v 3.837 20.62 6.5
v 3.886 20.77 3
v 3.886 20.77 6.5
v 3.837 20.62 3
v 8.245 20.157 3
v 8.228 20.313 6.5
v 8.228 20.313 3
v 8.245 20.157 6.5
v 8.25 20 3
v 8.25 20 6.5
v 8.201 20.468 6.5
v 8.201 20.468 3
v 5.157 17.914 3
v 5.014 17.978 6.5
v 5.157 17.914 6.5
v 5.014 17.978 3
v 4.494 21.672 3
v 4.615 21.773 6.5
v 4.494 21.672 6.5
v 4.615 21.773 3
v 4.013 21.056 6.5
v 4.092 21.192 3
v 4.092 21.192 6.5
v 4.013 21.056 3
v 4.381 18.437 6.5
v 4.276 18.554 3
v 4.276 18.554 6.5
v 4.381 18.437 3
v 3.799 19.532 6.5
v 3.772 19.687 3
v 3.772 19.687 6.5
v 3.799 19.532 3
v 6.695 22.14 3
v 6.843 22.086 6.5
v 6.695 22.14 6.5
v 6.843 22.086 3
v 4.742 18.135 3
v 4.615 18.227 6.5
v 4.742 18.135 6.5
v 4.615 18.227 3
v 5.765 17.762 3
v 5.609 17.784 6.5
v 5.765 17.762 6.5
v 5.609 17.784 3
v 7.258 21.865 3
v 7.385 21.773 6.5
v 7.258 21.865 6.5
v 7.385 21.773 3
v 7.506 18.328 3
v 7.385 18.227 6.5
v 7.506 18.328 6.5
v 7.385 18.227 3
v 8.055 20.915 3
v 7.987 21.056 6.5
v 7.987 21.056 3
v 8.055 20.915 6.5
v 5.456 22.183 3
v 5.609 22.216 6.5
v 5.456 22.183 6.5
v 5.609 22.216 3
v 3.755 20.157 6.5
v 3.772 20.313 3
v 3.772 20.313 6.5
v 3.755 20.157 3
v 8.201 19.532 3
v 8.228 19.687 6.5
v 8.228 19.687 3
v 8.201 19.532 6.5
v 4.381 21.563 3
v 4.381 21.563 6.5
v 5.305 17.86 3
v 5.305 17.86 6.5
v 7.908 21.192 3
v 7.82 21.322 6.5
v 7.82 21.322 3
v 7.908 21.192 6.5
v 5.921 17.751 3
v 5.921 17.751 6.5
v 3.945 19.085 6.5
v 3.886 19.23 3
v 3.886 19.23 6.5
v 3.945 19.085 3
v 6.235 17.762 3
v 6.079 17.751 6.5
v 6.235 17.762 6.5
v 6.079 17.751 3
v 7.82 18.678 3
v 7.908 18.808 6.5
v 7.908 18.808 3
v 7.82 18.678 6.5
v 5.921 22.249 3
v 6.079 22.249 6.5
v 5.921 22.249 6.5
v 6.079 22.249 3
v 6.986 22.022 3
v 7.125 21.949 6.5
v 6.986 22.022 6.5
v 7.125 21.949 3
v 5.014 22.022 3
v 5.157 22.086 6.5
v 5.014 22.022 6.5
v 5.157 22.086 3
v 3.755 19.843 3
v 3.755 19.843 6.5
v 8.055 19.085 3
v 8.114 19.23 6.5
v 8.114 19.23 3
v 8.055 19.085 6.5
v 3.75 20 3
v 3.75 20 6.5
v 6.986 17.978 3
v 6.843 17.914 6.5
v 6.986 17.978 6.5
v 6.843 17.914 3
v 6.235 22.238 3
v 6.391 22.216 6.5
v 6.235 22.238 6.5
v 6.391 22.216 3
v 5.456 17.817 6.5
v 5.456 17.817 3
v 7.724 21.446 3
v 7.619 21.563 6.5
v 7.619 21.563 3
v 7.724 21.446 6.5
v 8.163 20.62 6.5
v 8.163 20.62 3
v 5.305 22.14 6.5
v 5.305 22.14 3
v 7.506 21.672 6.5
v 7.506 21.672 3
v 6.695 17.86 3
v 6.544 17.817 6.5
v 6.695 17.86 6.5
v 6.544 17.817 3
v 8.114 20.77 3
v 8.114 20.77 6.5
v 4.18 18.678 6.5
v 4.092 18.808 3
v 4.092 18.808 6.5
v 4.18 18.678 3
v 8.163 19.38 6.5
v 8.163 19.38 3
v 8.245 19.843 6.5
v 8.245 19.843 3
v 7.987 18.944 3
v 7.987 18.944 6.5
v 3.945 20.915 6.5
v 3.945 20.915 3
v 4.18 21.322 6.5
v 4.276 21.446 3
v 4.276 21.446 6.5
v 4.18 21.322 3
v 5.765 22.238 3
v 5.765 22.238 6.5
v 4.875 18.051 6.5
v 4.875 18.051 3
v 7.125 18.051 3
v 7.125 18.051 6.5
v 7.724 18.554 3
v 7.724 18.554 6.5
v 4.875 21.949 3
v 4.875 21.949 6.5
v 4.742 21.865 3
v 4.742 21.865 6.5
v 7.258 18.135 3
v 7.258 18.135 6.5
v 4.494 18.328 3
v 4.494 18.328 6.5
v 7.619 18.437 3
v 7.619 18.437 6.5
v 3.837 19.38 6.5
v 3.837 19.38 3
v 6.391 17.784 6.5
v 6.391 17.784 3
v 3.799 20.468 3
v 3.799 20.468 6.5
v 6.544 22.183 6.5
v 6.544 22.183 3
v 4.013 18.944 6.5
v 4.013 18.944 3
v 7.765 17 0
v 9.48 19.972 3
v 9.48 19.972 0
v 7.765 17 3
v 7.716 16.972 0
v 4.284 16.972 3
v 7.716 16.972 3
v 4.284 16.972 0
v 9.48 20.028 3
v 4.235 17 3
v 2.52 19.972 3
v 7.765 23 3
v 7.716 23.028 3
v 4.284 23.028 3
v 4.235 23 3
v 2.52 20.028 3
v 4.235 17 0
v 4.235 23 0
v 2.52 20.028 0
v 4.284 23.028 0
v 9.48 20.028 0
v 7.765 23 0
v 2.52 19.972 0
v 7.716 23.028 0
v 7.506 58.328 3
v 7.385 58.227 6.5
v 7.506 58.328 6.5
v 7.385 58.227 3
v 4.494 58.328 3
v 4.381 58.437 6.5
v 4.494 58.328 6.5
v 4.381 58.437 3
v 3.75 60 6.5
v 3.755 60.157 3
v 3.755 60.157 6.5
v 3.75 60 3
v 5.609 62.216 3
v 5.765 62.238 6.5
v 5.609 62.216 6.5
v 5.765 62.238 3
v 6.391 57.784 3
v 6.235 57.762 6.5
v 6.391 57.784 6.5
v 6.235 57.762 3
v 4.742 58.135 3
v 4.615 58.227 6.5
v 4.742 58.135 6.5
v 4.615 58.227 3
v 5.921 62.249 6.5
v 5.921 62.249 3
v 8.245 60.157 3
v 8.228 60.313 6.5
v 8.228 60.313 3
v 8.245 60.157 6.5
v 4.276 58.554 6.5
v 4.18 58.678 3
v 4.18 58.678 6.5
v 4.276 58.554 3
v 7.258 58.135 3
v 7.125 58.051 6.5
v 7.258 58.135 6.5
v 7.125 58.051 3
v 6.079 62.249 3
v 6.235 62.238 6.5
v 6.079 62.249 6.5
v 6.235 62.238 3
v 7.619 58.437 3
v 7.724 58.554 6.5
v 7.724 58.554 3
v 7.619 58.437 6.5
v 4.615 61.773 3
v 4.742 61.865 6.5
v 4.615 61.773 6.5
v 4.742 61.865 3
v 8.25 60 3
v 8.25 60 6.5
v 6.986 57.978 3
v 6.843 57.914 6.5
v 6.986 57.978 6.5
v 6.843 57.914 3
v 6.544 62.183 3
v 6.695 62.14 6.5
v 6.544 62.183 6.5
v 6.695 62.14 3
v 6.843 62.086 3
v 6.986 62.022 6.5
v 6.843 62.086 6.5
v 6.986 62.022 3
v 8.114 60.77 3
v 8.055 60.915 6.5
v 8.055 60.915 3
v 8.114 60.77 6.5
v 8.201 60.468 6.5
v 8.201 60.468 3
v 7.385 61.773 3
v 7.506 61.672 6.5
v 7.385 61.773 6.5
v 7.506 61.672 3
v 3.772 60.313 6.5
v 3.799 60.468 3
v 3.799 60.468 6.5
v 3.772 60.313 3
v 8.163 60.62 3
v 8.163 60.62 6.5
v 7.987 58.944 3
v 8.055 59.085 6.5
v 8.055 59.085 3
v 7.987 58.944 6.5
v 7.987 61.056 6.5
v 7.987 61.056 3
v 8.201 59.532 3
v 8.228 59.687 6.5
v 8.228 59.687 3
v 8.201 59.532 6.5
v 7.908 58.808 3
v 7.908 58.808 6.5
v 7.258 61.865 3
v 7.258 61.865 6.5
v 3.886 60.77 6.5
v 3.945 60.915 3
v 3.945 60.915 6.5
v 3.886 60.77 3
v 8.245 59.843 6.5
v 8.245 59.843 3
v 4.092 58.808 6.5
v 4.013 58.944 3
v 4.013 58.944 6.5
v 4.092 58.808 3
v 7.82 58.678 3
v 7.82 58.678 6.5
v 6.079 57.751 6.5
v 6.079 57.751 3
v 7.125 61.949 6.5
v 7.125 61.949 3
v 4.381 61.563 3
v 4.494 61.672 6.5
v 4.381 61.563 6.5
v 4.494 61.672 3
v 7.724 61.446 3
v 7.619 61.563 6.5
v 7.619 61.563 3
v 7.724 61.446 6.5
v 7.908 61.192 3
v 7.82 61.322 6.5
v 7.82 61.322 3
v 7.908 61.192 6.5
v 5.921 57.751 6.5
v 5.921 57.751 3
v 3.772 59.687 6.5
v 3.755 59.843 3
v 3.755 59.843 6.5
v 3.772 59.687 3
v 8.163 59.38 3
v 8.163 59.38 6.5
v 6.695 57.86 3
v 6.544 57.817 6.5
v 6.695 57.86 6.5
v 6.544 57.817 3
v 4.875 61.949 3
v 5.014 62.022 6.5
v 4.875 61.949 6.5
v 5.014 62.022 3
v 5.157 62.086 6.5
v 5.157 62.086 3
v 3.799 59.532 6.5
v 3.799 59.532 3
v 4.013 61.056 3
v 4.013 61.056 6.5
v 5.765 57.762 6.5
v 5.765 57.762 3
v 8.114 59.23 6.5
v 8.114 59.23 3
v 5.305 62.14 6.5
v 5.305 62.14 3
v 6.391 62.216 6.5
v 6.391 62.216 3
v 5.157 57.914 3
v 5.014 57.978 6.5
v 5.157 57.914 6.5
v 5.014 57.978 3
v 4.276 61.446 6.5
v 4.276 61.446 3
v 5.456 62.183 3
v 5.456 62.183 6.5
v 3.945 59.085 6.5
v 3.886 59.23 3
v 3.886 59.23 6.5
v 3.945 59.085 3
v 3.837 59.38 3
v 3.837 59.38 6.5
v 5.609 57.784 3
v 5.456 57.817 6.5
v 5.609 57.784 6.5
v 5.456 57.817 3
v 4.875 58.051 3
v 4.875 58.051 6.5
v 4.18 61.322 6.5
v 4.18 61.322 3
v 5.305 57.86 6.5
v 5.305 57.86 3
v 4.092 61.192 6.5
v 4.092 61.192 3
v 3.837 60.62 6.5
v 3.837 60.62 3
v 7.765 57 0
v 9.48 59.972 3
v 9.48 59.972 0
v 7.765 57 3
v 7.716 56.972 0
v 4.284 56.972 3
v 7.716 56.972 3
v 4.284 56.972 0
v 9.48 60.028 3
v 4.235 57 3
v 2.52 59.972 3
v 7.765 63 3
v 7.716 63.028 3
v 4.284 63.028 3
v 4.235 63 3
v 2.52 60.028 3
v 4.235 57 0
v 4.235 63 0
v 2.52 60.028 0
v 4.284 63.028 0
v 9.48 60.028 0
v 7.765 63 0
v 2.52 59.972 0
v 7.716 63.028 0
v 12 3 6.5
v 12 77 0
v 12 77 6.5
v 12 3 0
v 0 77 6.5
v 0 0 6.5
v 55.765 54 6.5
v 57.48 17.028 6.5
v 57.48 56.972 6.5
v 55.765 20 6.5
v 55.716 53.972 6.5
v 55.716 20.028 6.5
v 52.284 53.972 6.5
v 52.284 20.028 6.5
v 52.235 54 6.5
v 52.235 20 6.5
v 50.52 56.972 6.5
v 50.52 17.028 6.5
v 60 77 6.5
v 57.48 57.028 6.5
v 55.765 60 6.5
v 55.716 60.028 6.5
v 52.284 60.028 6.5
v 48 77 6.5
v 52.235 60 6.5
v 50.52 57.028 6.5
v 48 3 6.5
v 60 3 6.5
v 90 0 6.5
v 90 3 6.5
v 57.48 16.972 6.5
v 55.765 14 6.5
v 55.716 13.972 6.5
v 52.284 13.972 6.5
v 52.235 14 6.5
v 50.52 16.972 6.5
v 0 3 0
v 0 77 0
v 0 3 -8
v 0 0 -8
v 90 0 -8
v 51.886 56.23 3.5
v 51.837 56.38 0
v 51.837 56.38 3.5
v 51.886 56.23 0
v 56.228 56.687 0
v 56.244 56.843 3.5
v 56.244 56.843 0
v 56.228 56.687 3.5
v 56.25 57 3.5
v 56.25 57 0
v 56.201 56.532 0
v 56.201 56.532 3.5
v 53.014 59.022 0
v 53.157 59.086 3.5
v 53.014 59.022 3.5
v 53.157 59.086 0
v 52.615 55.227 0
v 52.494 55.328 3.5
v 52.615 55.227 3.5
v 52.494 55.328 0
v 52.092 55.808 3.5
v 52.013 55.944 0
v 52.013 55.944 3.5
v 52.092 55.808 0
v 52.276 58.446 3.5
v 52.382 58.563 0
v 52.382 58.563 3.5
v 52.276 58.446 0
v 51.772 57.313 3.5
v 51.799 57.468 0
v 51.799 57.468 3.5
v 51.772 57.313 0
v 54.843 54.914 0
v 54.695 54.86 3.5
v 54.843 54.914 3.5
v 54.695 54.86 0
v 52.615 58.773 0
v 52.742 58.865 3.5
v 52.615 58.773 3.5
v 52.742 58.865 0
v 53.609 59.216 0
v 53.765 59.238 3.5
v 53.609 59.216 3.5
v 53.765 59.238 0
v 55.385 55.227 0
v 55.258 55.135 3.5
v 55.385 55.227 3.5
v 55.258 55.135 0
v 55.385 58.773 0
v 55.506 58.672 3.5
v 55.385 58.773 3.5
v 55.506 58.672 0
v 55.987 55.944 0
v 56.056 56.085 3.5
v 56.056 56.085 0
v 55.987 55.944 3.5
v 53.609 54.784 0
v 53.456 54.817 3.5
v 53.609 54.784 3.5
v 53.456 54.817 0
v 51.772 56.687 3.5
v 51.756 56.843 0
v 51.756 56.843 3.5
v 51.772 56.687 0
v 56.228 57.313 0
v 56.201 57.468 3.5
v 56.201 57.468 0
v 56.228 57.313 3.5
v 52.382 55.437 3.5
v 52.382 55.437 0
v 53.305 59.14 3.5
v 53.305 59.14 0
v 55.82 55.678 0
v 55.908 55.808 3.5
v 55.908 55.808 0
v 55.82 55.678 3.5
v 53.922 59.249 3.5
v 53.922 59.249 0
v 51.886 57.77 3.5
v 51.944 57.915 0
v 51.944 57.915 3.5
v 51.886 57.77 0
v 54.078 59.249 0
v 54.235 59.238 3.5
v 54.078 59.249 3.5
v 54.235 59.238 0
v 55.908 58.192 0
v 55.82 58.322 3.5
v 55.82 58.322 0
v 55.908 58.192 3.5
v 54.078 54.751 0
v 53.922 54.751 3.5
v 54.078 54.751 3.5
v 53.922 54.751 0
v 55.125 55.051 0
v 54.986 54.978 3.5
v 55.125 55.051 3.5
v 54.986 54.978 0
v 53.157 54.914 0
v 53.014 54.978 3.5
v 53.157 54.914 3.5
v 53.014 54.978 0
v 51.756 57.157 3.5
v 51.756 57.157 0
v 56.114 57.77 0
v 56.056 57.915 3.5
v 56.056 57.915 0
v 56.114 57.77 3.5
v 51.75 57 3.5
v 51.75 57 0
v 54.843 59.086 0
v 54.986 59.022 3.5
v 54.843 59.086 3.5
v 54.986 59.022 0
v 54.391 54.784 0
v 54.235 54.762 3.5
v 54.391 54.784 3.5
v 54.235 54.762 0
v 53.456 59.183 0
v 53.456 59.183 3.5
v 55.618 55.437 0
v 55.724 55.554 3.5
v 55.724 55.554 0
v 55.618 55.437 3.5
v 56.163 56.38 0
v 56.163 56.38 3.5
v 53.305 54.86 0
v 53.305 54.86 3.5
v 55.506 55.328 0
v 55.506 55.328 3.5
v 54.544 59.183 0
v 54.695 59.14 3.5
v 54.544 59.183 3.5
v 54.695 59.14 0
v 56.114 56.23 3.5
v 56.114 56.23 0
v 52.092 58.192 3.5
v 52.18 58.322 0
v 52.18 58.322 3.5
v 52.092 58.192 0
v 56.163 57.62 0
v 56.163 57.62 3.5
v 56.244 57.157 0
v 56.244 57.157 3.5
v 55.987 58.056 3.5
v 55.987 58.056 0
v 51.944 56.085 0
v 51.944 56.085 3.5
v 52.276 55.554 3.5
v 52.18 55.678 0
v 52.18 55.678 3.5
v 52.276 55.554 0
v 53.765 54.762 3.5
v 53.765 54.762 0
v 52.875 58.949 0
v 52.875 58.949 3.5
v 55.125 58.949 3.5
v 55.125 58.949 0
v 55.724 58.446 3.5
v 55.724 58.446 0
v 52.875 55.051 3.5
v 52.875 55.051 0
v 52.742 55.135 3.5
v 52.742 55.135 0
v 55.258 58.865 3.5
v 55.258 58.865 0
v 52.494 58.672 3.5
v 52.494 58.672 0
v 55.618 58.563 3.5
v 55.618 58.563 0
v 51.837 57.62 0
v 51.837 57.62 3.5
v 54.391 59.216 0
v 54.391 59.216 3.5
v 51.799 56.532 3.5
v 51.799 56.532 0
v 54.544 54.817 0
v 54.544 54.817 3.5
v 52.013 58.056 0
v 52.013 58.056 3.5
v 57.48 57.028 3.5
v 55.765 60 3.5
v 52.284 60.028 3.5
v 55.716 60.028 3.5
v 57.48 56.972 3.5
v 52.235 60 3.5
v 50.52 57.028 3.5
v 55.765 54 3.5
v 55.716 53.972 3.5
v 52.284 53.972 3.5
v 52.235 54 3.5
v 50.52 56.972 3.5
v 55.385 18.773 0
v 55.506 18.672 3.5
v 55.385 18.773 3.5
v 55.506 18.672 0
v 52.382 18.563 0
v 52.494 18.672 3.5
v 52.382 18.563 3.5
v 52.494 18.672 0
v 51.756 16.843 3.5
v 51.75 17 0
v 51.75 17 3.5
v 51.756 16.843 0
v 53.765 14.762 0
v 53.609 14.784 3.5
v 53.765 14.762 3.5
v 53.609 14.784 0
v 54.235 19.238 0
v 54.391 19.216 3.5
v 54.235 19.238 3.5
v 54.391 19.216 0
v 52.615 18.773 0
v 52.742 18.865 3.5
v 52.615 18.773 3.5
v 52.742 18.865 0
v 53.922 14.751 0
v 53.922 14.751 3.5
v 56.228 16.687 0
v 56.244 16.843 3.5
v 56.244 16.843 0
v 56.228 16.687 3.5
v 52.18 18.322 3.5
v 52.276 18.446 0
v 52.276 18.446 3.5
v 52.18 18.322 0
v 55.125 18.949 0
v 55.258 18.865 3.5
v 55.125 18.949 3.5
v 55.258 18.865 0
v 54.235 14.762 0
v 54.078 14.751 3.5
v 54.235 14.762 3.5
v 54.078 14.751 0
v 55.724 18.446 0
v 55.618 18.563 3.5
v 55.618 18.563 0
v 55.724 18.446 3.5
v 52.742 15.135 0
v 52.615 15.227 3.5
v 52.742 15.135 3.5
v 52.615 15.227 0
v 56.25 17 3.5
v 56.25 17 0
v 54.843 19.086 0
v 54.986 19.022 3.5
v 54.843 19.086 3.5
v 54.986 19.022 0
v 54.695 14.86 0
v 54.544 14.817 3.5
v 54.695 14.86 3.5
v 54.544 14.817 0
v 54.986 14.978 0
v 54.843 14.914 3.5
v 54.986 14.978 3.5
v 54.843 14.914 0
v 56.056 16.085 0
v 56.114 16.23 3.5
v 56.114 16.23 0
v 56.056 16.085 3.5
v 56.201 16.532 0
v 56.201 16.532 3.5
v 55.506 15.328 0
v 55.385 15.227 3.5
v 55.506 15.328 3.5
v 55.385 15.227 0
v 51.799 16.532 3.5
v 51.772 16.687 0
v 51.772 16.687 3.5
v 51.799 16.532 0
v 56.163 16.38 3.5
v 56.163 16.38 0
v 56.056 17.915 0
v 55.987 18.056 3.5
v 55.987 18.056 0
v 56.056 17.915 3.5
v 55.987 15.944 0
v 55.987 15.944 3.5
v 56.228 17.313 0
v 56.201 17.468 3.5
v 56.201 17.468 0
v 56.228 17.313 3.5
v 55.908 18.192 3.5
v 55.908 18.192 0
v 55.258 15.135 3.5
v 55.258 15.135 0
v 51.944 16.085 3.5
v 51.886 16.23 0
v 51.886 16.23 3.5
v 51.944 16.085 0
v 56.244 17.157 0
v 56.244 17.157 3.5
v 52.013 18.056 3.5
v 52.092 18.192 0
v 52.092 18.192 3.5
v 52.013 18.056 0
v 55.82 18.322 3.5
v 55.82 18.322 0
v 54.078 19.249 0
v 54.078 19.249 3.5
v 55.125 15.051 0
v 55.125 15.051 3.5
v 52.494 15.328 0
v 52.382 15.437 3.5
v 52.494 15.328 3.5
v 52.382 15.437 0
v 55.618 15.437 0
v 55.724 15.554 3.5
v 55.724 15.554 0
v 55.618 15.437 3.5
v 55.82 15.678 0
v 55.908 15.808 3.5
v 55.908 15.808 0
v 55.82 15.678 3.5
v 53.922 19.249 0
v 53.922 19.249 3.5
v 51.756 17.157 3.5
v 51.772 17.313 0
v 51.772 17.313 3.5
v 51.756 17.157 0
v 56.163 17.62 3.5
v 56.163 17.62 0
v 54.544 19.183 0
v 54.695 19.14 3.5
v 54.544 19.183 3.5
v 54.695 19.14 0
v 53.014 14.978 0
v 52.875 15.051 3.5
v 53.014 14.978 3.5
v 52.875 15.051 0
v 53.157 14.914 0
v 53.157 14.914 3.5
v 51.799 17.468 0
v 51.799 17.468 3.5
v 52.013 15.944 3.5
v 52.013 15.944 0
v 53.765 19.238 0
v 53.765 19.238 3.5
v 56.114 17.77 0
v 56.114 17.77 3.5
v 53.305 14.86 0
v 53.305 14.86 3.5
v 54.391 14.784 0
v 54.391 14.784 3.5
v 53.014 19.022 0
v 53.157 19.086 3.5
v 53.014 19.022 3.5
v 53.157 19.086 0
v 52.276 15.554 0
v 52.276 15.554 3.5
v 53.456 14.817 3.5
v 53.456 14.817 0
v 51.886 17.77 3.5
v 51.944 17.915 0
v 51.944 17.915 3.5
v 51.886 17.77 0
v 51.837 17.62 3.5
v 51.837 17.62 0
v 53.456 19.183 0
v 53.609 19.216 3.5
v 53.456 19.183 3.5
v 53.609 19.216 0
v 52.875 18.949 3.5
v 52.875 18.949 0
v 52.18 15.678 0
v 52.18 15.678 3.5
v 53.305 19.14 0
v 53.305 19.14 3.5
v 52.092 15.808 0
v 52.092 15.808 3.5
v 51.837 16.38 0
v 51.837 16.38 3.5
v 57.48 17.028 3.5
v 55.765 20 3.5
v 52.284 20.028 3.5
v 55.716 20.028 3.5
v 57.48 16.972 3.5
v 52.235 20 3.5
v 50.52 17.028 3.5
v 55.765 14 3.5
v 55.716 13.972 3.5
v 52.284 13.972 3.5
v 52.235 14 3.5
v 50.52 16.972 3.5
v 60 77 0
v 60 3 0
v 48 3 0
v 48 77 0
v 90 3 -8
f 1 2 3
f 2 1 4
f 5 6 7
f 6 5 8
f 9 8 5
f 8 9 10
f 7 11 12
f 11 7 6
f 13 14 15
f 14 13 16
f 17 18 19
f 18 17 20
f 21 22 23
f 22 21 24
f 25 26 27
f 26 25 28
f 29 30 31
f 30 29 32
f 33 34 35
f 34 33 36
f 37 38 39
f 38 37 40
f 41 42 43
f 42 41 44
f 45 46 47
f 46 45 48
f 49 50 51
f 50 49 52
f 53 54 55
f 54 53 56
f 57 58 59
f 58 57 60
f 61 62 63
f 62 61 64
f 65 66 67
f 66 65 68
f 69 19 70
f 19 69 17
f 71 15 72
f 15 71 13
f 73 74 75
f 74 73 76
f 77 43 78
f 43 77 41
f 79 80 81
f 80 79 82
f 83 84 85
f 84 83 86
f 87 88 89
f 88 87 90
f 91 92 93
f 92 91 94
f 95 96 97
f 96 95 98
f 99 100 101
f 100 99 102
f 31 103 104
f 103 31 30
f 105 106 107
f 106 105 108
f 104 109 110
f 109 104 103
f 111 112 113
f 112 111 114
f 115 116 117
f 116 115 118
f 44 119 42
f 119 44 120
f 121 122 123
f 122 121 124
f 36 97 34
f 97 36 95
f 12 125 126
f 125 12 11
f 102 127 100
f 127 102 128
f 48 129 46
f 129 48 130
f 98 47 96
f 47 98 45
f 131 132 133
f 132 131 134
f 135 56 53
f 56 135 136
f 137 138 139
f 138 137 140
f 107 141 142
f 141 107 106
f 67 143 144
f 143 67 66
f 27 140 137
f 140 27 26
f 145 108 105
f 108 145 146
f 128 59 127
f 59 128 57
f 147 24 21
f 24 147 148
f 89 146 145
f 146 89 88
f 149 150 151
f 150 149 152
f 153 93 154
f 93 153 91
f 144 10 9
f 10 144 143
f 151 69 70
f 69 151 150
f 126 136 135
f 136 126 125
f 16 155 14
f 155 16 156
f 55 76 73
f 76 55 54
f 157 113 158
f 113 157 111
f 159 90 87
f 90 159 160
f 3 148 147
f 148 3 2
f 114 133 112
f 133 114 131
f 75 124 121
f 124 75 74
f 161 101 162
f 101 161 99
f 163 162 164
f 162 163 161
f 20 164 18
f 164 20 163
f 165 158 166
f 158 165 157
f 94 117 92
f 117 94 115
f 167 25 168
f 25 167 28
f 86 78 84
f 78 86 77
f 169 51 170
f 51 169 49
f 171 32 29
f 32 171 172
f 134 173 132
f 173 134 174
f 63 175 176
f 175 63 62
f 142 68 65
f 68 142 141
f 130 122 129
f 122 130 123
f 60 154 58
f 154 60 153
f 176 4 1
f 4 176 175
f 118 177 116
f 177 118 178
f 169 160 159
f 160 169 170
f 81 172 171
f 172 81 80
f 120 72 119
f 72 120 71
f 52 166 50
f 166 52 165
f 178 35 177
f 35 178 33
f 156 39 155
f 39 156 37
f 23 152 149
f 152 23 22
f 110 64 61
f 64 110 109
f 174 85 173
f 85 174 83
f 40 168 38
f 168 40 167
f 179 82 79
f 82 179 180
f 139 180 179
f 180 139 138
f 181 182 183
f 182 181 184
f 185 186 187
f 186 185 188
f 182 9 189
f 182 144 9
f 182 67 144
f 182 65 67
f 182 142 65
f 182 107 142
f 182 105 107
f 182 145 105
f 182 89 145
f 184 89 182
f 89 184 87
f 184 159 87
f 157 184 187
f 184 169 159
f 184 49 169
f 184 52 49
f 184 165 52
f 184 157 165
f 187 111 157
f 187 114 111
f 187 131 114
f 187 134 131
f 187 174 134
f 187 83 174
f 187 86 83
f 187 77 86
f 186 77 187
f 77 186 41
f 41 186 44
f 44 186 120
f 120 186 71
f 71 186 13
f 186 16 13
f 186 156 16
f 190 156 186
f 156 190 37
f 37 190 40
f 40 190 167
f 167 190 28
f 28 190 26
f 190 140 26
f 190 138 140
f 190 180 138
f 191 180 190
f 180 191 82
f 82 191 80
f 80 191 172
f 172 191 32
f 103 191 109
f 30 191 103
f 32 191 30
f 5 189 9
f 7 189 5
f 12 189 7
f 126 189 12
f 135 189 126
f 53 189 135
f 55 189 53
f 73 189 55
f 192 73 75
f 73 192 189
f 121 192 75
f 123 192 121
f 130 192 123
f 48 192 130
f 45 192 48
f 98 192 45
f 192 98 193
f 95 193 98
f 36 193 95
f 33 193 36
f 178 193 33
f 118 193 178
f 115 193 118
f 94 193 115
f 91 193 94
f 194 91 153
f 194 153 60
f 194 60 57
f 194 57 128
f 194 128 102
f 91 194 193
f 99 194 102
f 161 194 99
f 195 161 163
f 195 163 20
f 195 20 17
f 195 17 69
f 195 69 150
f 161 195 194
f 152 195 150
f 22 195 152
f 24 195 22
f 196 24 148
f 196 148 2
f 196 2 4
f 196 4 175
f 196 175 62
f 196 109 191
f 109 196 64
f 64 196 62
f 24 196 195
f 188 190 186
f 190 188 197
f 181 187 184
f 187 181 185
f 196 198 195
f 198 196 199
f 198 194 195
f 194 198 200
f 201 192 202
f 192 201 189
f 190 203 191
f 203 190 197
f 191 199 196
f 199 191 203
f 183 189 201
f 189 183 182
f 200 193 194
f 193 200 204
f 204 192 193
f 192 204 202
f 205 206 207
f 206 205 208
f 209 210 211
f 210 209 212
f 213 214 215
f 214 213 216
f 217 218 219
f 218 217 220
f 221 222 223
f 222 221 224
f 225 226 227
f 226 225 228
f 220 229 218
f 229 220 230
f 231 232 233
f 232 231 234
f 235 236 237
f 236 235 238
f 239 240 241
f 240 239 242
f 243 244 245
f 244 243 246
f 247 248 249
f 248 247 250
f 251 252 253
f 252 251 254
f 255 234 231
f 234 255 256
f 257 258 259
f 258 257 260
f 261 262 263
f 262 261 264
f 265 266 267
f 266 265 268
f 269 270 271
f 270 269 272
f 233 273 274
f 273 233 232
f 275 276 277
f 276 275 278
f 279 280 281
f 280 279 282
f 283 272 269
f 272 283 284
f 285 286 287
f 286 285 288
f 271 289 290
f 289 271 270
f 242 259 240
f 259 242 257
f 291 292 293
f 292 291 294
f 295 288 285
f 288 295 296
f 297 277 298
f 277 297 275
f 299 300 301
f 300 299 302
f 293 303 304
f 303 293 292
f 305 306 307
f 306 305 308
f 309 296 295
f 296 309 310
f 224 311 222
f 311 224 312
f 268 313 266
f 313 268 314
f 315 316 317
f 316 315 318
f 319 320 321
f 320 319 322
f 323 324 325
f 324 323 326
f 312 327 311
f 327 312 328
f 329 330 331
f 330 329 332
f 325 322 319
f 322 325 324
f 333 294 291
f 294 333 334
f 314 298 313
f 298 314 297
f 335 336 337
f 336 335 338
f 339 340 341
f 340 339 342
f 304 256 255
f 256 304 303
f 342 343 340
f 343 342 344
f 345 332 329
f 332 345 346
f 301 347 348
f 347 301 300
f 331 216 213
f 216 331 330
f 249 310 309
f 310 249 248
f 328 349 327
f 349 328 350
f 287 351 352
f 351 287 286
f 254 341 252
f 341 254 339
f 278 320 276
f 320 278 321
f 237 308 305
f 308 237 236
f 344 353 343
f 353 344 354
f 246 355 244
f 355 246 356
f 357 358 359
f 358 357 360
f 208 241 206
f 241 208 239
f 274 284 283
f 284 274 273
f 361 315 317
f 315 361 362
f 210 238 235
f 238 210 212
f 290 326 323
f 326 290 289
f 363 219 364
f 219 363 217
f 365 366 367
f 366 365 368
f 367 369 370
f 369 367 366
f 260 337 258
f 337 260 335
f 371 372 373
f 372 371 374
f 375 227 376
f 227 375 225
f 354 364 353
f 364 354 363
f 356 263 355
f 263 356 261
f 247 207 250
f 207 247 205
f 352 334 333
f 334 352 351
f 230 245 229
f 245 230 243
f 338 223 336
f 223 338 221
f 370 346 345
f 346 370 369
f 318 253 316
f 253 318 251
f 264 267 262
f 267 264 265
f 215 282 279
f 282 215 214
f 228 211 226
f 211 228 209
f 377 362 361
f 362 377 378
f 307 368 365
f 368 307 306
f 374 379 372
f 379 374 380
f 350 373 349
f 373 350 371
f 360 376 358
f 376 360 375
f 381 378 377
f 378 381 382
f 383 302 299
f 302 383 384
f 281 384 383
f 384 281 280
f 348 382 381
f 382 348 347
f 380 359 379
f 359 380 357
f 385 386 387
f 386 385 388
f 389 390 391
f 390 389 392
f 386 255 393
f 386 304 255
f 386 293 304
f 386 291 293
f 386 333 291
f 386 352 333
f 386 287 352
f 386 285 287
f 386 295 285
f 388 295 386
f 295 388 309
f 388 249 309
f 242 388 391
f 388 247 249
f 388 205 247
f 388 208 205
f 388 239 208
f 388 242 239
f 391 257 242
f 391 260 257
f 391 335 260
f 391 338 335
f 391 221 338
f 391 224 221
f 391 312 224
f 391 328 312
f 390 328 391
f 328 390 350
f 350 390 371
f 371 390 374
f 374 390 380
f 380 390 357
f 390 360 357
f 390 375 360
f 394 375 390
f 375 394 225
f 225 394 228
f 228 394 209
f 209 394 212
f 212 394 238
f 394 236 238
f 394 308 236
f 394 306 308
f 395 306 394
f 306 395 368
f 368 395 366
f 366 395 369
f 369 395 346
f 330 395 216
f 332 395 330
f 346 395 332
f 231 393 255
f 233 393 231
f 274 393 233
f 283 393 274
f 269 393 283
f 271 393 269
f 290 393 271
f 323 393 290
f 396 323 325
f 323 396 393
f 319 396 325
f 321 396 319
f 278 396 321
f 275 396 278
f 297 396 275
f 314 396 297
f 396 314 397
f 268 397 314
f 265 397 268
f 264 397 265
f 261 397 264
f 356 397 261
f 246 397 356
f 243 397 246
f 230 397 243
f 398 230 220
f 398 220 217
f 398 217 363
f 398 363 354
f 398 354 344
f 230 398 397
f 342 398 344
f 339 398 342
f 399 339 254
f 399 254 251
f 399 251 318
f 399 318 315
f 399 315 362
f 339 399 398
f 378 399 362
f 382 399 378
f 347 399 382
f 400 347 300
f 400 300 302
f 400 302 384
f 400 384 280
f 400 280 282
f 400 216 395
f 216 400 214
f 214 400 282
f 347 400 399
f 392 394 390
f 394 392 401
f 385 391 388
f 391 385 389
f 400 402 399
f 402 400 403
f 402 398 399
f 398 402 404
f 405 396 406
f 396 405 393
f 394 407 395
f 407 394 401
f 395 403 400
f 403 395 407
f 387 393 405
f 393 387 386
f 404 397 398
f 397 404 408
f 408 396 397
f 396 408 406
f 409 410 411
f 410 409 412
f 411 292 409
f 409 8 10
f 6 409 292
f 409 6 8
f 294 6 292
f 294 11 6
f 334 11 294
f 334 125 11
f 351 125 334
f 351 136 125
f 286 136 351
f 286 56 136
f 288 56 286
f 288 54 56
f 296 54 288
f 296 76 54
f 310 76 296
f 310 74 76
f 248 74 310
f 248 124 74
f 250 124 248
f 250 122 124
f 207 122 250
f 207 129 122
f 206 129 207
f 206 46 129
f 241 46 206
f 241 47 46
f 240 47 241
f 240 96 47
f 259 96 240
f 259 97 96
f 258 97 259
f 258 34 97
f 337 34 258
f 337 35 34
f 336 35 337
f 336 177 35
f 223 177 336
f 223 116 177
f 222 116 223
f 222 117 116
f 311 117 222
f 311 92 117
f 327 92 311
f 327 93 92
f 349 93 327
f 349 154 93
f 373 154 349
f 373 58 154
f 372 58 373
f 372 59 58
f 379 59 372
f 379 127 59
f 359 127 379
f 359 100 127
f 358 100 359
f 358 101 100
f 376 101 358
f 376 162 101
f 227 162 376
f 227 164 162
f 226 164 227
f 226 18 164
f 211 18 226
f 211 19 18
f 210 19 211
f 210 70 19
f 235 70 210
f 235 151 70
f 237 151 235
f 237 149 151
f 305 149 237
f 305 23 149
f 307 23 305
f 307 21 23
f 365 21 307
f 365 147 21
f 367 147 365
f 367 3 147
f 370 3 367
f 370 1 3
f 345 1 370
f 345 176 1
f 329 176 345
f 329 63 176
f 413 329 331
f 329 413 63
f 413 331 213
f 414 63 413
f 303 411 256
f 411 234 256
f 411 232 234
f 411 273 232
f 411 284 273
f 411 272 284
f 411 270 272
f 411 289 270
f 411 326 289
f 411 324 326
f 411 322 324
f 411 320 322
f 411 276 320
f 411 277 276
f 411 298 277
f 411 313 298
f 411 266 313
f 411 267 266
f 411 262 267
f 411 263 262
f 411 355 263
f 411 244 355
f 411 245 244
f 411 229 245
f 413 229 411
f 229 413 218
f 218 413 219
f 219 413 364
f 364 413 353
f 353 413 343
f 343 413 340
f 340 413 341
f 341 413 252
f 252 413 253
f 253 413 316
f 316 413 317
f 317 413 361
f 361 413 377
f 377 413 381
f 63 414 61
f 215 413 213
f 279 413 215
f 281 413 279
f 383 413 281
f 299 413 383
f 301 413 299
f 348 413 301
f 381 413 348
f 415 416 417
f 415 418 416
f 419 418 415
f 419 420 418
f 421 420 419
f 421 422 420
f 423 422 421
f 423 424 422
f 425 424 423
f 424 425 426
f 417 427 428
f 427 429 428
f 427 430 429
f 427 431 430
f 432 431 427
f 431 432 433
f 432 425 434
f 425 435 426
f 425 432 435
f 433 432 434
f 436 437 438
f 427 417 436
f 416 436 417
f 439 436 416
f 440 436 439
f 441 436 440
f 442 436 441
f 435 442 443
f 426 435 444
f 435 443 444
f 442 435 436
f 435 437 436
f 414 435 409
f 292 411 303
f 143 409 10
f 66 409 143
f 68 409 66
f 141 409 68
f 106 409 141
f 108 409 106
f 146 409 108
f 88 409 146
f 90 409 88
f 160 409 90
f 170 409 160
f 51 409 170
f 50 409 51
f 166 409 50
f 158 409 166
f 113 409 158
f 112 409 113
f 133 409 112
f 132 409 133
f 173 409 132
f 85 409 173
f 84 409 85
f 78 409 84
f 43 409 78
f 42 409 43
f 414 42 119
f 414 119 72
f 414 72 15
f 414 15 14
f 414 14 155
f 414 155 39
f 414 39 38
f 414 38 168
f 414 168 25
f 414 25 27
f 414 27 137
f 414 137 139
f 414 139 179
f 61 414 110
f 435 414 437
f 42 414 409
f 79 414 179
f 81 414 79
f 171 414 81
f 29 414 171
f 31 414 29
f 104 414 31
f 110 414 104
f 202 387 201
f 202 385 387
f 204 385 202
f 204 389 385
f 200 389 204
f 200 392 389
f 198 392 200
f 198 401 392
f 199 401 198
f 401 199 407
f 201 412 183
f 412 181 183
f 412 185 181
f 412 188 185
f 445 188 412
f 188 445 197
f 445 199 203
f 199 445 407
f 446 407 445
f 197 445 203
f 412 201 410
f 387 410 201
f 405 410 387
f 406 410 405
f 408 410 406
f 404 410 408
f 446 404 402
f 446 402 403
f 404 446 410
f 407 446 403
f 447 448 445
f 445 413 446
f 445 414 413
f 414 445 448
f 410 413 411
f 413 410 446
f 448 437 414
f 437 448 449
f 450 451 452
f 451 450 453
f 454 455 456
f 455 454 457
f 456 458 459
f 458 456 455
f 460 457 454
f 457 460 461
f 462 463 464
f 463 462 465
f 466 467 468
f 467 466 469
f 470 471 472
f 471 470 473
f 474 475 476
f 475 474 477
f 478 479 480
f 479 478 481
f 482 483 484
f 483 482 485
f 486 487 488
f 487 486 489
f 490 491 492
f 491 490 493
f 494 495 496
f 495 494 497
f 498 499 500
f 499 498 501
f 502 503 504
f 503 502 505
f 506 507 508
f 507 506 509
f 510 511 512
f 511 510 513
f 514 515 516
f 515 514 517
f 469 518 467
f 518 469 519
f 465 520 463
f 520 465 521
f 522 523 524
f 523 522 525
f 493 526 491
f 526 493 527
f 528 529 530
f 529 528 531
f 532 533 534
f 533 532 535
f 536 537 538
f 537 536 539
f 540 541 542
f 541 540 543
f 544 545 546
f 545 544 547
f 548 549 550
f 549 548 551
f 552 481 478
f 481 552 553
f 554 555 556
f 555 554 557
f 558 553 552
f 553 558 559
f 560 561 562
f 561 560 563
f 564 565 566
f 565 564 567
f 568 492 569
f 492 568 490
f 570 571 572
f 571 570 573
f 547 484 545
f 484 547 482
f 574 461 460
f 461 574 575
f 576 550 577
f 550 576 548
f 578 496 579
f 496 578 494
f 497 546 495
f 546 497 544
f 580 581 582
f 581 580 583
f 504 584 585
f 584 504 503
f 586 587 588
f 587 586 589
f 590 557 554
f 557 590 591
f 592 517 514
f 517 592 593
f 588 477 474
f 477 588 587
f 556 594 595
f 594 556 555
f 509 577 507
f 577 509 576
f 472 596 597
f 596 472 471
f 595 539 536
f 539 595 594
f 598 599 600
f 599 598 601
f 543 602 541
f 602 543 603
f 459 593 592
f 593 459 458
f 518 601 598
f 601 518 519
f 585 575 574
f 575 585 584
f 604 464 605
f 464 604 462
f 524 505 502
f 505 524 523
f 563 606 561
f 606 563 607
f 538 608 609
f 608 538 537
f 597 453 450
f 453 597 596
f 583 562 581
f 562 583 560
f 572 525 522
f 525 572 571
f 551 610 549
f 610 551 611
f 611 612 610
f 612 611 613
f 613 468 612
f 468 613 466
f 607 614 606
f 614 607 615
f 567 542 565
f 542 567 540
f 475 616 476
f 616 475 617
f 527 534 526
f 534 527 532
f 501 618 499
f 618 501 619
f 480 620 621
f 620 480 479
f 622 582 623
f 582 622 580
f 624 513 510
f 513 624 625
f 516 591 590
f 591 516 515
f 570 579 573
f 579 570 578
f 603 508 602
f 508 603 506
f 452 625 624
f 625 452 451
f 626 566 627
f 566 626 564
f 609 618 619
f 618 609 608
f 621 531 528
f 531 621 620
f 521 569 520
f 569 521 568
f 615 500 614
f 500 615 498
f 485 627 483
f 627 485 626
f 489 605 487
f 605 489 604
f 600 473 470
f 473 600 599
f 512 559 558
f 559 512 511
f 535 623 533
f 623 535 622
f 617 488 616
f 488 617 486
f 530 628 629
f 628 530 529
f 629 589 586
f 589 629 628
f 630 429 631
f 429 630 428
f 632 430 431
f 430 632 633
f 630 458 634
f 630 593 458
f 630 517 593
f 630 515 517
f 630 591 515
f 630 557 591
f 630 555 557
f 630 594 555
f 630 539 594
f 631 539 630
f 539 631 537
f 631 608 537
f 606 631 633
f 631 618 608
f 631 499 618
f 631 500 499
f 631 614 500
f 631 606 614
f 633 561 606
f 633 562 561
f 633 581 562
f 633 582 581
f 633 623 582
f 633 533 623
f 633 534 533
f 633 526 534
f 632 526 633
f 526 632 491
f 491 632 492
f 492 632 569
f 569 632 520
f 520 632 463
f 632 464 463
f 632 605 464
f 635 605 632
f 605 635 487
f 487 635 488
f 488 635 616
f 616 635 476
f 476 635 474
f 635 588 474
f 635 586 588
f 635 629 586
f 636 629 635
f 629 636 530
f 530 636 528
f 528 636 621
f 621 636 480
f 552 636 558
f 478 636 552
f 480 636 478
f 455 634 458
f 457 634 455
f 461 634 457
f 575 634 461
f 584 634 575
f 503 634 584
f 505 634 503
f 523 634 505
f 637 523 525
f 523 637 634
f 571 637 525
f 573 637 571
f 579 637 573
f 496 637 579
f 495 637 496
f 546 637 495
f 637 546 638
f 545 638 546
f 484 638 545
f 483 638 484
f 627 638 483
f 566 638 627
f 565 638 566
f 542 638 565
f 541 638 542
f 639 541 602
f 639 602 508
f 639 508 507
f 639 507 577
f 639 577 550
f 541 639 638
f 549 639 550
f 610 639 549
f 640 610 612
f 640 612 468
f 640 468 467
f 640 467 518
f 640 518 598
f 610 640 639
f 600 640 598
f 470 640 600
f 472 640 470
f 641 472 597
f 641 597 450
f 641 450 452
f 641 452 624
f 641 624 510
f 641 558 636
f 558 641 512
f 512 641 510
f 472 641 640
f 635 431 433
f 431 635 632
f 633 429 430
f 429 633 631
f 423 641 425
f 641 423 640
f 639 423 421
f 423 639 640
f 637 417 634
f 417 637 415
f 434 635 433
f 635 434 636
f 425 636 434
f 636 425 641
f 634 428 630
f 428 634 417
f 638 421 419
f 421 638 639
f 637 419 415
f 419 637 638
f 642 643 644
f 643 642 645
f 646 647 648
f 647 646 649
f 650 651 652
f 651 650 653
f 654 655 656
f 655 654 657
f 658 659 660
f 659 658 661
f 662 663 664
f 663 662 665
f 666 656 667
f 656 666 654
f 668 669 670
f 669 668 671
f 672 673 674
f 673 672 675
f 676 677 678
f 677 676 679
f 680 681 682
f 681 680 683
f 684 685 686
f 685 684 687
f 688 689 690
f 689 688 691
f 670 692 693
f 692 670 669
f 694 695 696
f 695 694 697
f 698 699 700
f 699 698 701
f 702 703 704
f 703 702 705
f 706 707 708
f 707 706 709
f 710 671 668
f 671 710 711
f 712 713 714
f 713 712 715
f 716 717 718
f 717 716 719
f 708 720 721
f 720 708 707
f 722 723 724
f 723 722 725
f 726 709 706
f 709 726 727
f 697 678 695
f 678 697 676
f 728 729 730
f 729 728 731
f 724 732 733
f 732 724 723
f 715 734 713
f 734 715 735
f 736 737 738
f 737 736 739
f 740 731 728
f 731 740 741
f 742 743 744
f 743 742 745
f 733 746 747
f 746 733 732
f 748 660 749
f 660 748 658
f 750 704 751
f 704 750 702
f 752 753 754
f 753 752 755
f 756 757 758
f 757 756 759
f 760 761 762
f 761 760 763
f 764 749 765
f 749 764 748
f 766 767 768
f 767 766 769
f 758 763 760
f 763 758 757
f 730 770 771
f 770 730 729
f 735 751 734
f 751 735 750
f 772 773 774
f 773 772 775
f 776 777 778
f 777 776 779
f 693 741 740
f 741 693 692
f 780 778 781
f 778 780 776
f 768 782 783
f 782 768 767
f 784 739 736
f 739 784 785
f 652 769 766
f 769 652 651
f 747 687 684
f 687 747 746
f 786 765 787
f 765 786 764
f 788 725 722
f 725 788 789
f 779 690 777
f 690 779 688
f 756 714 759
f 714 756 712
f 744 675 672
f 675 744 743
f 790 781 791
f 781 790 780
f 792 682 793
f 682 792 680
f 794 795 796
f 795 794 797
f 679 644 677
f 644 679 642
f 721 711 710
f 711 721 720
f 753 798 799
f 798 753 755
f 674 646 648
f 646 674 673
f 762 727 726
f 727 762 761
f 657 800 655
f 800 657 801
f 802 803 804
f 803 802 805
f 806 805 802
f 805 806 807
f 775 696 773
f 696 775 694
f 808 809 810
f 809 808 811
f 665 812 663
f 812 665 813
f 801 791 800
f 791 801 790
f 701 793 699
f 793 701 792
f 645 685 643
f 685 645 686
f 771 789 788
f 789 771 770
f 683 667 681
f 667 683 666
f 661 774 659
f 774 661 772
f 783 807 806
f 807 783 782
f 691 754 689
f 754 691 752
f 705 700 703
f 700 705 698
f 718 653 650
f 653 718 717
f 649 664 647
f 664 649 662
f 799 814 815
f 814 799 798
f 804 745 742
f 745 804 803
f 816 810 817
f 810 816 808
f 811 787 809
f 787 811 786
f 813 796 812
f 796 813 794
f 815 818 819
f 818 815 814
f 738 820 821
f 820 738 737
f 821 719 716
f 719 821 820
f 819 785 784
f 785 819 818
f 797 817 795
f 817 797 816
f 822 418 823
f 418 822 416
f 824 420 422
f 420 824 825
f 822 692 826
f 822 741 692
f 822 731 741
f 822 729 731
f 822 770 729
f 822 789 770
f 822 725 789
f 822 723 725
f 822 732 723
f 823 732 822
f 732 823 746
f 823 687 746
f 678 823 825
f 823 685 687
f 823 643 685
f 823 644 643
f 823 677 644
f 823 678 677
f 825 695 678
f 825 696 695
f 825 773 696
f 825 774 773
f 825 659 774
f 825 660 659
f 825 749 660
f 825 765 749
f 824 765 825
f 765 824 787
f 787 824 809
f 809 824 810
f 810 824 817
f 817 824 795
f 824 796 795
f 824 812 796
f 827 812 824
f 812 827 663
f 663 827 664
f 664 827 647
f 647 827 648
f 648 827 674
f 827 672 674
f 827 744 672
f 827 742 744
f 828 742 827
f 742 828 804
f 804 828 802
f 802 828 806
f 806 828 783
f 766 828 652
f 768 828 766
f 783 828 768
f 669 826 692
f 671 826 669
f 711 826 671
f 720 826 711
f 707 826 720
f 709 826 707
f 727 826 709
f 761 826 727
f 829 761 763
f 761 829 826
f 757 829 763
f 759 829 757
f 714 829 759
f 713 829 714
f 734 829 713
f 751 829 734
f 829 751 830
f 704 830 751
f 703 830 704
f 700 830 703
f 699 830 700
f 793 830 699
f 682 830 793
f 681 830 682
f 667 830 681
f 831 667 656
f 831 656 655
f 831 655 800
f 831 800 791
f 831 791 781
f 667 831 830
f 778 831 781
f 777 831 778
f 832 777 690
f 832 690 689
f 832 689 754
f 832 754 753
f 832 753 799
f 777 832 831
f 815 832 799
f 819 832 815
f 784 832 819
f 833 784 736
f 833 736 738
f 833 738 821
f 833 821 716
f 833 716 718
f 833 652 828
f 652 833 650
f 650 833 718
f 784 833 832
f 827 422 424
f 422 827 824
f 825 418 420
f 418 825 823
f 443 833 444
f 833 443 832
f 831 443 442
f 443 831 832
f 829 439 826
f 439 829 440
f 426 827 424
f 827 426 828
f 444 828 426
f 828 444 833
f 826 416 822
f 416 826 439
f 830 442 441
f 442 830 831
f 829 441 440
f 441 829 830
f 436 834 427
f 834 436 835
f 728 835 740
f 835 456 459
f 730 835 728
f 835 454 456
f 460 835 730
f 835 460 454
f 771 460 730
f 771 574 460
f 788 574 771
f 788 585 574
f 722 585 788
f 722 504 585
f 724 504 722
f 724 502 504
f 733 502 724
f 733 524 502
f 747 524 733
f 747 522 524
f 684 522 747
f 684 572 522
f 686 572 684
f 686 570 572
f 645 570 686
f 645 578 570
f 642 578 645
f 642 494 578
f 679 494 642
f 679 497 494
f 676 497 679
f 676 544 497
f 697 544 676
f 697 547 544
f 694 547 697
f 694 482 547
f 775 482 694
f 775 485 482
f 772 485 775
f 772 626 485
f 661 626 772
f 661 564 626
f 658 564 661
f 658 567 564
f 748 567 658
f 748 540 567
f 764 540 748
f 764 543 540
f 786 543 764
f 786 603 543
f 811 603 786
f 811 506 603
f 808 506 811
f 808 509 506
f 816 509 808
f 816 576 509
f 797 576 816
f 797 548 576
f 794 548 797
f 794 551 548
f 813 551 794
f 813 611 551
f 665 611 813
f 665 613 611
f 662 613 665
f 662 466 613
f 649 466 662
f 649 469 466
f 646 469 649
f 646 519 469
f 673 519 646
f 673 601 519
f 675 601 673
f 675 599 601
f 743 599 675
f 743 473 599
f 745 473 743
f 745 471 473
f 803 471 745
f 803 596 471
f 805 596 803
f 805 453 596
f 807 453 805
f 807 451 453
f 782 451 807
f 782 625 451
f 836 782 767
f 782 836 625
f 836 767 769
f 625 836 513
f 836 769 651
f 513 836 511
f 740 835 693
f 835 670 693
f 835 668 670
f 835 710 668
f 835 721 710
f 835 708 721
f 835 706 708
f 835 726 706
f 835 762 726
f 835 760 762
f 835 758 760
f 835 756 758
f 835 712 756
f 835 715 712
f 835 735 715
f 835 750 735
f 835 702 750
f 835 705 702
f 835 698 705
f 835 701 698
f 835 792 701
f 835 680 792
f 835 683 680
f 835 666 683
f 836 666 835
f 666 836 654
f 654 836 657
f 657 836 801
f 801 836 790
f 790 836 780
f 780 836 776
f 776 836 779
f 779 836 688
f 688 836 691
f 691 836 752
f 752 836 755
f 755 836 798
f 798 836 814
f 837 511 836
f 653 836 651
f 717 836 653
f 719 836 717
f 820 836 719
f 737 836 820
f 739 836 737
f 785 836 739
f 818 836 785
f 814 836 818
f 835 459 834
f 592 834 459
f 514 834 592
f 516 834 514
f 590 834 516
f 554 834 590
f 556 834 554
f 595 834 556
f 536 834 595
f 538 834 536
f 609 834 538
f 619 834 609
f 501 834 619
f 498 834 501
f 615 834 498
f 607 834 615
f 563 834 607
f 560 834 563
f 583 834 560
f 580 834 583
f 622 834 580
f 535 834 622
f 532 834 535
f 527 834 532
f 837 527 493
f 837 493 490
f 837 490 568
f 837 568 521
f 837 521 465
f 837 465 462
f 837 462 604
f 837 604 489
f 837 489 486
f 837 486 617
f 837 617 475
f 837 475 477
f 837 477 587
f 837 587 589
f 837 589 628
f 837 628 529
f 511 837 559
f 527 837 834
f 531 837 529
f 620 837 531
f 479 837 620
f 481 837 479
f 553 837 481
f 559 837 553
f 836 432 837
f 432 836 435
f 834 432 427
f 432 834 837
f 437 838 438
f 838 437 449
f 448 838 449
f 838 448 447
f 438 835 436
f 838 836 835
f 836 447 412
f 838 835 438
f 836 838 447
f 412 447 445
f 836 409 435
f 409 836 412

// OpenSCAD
$fn=90;  // accuracy

width = 90;
depth = 80;

slideWidth   = 12;
slideHeight  = 6.5;
slideOpening = 9;

slidesDistence        = 36;
slidesDistenceOpening = 40;

stopThickness = 3;
stopHeight    = 8+slideHeight;


module fhex(wid,height){
hull(){
cube([wid/1.7,wid,height],center = true);

rotate([0,0,120])
cube([wid/1.7,wid,height],center = true);

rotate([0,0,240])
cube([wid/1.7,wid,height],center = true);
}}


module hole(y){
translate([slideWidth/2,y,-1]){
cylinder(
    h = slideHeight+2,
    d = 4.5);
    
translate([0,0,6-4])
fhex(6,4);    
}}


    
module slide(){
difference() {
union(){
cube([
    slideWidth,
    depth-stopThickness,
    slideHeight]);
}
union(){
hole(20);
hole(60);
}}}

module slideUp(){
slide();
}

module slideDown(){
translate([0,depth-stopThickness,slideHeight])
rotate([180,0,0])
slide();
}


module stop(){
translate([0,0,
    slideHeight-stopHeight])    
cube([
    width,
    stopThickness,
    stopHeight]);
}



union () {
 
stop();
    
slideUp();

translate([slideWidth+slidesDistence,0,0])
slideDown();
    
}
